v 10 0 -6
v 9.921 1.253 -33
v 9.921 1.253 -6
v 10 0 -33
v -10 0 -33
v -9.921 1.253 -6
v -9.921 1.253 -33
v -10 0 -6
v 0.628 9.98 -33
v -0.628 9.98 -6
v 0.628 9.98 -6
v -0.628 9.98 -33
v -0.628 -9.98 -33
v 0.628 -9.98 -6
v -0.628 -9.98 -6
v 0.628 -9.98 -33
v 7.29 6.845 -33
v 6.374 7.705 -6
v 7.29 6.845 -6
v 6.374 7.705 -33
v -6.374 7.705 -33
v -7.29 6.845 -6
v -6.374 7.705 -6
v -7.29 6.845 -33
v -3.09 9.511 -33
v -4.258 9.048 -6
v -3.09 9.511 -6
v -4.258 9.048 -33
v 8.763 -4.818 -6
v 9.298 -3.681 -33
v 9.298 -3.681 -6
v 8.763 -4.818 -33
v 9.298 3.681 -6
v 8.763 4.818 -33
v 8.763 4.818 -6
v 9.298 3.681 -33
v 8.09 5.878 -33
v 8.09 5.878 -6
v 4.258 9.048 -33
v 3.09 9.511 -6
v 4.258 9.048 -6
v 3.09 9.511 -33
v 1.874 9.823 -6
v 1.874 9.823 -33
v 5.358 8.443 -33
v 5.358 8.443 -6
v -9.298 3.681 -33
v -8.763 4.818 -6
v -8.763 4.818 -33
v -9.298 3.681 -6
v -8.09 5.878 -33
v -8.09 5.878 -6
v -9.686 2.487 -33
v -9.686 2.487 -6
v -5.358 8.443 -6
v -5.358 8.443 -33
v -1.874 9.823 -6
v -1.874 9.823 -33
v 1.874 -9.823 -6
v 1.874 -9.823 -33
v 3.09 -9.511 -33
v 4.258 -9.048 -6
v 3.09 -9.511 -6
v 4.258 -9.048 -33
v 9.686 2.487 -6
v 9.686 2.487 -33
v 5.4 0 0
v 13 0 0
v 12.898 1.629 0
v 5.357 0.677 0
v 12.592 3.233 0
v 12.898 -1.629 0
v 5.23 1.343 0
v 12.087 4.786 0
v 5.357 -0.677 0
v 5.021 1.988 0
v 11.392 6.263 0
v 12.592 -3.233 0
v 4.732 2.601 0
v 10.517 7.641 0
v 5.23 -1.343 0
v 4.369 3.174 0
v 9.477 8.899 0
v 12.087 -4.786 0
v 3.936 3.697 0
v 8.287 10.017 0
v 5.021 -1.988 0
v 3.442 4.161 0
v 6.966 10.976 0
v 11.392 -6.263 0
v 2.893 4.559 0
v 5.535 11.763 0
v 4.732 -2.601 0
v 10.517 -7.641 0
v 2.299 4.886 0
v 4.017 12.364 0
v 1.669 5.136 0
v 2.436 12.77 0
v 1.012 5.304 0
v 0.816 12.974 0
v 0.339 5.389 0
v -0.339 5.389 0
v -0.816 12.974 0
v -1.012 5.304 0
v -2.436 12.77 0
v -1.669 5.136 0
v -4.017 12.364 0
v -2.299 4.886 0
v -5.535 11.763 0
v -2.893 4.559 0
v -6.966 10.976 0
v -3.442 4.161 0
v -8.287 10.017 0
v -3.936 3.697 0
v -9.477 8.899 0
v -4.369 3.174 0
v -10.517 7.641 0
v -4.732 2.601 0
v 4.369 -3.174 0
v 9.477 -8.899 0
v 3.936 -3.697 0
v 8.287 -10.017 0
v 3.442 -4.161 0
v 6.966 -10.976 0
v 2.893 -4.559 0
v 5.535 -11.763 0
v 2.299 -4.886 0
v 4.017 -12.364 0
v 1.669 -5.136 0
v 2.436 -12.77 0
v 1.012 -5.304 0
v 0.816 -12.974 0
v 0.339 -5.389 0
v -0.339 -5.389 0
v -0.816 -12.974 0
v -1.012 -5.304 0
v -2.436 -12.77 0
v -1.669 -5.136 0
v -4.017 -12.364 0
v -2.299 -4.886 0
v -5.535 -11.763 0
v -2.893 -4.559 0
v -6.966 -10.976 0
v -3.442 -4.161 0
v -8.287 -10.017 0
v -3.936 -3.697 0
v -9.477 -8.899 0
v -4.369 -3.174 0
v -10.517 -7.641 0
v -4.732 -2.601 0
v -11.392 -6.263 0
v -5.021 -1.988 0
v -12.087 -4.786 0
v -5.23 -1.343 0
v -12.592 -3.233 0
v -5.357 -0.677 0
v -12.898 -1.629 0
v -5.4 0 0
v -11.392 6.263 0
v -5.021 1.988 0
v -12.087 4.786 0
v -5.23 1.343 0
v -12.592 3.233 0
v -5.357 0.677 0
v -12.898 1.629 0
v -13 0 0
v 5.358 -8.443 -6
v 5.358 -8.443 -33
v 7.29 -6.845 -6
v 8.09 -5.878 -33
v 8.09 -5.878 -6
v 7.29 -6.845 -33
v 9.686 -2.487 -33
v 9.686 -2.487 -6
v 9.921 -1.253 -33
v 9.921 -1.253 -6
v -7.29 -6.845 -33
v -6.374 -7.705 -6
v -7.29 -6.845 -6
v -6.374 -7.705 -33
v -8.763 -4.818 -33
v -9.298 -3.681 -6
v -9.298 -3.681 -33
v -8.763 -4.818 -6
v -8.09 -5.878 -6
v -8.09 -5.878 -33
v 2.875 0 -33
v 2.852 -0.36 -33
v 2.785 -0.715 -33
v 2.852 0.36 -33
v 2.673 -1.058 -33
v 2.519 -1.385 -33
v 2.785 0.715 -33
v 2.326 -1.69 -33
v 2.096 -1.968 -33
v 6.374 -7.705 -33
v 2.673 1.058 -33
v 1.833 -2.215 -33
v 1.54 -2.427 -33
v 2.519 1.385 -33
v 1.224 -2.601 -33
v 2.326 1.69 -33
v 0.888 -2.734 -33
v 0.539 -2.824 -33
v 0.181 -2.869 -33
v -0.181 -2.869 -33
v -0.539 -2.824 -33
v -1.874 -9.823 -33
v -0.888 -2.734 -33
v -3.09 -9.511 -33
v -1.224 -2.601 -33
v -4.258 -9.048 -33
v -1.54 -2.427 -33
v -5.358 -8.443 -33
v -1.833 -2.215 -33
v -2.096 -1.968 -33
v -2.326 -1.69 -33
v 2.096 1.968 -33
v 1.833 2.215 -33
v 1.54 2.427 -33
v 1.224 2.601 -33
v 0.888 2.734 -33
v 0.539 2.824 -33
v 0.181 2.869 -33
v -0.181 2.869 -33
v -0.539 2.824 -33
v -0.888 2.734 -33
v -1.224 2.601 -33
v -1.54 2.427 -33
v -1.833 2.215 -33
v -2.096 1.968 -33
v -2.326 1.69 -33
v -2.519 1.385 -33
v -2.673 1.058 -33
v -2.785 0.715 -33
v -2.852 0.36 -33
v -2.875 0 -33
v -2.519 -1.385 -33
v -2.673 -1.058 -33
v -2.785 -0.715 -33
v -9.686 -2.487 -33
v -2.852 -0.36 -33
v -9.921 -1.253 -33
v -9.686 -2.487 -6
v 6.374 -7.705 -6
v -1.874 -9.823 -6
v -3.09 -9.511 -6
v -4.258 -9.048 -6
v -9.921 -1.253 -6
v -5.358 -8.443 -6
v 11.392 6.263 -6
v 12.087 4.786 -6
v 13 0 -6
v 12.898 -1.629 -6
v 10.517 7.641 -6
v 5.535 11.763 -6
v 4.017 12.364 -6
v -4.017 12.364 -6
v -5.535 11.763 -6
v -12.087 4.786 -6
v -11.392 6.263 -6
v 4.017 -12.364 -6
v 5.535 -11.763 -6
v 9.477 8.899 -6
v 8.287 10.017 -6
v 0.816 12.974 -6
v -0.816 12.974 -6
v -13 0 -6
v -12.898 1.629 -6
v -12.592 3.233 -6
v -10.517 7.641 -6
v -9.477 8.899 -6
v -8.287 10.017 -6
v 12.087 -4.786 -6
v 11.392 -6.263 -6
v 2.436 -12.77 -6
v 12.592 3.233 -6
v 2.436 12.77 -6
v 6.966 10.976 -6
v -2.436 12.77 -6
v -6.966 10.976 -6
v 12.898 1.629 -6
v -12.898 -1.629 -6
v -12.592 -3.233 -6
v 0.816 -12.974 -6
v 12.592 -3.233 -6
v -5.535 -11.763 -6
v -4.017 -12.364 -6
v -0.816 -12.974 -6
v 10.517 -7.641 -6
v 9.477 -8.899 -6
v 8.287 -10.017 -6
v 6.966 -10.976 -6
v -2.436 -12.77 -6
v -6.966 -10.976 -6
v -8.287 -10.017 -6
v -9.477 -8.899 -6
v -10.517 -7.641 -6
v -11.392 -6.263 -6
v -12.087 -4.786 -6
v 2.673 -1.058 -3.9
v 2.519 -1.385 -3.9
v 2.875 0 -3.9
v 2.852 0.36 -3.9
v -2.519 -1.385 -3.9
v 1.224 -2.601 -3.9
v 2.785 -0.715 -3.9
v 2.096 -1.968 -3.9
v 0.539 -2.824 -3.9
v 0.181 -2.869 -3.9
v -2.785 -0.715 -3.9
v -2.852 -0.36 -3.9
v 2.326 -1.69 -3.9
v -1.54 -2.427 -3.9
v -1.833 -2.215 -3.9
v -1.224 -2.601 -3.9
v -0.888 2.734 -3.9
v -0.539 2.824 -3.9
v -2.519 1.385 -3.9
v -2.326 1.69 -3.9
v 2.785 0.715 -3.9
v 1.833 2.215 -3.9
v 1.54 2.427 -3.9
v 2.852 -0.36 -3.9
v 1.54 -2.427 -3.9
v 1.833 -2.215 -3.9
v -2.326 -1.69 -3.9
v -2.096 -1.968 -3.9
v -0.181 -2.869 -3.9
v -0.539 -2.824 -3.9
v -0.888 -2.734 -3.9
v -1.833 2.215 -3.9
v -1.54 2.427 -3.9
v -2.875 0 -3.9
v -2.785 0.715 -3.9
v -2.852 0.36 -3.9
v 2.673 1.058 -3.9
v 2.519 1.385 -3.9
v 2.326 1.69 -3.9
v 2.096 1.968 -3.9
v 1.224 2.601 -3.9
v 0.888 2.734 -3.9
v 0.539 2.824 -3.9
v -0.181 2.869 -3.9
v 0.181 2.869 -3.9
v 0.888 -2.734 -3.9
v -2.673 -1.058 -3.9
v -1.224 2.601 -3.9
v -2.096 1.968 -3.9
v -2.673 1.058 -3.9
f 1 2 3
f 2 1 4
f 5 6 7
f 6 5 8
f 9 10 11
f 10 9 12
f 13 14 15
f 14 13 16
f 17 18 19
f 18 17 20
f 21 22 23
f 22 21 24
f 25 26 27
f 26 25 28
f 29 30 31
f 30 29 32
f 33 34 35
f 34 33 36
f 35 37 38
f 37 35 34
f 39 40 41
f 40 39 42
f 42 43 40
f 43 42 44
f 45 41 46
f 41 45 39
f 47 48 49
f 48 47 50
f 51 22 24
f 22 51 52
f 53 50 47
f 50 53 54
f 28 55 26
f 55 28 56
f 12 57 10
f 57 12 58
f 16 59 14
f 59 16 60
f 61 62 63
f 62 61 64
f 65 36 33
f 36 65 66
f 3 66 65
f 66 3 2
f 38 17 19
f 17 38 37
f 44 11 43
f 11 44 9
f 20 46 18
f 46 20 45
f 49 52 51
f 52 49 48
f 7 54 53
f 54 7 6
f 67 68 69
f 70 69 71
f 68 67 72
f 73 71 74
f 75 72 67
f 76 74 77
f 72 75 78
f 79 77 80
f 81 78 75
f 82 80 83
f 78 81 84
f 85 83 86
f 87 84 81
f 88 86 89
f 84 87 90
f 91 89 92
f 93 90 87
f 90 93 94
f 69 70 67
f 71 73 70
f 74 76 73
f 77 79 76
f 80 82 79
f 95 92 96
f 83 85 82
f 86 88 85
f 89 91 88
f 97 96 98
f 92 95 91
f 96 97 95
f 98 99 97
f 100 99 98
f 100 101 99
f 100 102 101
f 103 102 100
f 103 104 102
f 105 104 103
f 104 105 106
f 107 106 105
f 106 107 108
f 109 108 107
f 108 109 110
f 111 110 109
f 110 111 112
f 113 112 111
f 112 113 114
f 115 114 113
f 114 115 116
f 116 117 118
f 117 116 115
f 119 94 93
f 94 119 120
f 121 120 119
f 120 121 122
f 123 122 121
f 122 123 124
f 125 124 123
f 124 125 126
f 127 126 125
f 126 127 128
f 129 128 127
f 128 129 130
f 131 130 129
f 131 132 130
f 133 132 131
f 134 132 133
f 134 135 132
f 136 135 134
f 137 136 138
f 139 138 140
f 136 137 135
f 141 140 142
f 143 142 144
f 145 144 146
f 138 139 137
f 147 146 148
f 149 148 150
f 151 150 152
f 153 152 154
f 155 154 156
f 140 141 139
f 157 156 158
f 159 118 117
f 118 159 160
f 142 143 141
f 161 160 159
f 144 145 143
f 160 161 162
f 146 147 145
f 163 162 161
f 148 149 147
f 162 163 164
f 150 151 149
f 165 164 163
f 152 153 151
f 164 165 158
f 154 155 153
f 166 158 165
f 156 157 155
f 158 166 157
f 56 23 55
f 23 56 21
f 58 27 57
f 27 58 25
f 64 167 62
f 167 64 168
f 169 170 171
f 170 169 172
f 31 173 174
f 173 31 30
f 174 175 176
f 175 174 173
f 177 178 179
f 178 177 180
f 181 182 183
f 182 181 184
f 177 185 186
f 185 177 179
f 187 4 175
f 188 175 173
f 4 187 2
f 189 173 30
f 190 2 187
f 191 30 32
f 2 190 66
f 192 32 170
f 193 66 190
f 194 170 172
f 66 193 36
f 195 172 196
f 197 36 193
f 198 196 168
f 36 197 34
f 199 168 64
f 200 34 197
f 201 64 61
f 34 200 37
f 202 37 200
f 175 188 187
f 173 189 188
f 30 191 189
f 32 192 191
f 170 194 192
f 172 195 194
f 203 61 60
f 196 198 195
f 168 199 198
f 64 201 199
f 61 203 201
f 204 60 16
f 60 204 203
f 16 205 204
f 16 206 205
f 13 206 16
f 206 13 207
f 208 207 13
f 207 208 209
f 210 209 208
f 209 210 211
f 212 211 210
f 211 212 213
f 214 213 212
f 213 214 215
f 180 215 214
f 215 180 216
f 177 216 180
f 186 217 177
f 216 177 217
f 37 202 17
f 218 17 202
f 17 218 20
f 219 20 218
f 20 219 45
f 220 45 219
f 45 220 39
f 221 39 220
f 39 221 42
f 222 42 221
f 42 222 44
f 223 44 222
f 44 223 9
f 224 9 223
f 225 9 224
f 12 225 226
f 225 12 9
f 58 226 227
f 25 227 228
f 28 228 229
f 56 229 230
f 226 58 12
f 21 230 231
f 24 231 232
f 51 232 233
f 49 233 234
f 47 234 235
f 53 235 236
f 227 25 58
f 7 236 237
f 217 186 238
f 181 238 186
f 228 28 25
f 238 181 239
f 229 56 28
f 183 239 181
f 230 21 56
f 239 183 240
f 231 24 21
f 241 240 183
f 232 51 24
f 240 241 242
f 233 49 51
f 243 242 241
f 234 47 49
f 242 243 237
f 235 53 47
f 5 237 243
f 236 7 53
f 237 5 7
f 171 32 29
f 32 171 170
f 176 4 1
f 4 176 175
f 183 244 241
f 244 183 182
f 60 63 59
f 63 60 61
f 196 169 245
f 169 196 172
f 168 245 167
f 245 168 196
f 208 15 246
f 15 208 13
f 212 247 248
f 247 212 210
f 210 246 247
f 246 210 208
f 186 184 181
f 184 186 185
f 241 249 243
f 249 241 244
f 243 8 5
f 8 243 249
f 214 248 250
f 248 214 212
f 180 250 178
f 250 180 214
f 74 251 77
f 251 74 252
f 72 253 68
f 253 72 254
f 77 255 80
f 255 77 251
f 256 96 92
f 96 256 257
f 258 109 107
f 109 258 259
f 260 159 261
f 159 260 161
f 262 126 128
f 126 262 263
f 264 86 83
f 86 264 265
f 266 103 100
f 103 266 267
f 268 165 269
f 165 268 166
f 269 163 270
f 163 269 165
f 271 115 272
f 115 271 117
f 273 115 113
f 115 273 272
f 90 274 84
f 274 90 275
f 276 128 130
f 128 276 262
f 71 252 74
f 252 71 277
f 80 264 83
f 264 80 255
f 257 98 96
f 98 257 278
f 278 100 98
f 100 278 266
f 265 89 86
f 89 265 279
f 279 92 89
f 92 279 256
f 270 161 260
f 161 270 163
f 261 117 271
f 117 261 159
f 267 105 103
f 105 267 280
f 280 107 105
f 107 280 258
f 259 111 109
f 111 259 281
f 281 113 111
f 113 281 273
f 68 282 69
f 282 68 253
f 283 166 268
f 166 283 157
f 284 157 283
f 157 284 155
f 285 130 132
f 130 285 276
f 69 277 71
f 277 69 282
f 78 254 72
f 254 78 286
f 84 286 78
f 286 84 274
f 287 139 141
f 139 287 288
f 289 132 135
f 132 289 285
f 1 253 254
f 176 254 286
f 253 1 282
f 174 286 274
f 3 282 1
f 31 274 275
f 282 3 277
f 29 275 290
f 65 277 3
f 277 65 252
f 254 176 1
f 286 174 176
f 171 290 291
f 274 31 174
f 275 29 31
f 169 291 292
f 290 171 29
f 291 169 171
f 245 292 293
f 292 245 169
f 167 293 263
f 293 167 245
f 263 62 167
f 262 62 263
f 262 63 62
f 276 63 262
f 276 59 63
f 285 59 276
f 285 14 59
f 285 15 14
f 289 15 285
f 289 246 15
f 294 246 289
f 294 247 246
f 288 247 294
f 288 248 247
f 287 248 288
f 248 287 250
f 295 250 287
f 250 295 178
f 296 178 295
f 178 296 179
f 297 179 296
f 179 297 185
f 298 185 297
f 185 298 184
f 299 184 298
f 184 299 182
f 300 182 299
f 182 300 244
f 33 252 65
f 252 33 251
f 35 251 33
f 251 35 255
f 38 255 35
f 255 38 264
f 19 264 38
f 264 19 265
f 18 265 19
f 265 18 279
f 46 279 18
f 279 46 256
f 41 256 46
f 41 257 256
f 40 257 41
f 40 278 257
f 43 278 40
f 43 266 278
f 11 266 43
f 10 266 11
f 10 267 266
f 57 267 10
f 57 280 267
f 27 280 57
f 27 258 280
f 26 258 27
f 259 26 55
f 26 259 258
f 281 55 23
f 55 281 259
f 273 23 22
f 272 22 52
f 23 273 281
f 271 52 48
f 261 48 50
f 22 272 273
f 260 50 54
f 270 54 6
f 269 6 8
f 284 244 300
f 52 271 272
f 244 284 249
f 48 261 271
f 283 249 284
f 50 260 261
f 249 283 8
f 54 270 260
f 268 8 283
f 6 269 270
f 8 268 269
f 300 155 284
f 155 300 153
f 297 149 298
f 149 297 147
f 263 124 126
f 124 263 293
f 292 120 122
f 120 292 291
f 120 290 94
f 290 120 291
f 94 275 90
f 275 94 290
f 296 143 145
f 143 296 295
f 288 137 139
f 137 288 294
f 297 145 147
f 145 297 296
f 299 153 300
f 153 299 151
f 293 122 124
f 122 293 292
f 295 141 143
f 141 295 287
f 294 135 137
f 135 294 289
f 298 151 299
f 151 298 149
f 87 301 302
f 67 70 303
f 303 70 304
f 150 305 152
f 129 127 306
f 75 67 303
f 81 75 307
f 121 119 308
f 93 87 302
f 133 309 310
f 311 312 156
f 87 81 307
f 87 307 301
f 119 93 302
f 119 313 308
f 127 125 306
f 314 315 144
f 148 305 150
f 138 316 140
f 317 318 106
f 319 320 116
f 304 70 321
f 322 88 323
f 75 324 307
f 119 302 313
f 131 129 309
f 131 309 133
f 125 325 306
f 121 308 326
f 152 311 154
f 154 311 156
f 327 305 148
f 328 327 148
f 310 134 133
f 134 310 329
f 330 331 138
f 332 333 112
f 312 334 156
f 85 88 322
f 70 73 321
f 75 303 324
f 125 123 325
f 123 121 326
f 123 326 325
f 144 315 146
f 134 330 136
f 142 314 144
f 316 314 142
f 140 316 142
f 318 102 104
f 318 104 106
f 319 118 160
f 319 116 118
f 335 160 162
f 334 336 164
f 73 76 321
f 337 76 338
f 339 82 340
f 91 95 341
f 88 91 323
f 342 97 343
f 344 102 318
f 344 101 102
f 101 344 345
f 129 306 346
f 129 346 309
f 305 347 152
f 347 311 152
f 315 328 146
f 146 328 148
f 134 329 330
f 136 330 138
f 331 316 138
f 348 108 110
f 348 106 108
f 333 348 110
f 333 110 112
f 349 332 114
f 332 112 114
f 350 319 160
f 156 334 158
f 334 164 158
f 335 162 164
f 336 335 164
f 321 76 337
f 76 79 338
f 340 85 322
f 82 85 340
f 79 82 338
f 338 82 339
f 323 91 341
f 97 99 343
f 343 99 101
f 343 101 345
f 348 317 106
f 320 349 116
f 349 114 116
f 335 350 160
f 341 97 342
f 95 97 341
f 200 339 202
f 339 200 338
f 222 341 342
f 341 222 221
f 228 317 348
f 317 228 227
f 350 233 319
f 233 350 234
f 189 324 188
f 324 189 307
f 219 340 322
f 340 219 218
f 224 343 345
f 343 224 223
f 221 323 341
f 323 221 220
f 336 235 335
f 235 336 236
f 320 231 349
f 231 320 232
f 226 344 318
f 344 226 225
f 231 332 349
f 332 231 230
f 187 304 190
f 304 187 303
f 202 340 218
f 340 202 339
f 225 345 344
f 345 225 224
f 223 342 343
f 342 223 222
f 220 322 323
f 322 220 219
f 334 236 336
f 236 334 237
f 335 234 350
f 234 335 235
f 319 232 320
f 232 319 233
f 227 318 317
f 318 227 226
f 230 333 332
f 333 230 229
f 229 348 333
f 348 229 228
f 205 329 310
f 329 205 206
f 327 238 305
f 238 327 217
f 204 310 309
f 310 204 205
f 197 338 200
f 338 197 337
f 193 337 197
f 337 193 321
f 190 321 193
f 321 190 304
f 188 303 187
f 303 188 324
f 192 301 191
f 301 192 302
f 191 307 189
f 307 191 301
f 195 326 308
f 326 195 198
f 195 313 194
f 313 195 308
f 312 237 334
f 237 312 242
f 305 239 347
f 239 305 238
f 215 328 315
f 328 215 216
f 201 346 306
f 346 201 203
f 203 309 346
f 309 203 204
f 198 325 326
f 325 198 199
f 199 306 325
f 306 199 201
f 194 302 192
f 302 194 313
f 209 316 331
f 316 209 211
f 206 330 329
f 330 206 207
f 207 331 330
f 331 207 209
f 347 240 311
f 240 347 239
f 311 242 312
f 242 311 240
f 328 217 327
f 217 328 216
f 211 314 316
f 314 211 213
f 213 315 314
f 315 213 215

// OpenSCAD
$fn = 50;


difference() {
	union() {
		translate(v = [0, 0, -33.0000000000]) {
			cylinder(h = 33, r = 10.0000000000);
		}
		translate(v = [0, 0, -6.0000000000]) {
			cylinder(h = 6, r = 13.0000000000);
		}
	}
	union() {
		translate(v = [0, 0, 0]) {
			rotate(a = [0, 0, 0]) {
				difference() {
					union() {
						#translate(v = [0, 0, -33.0000000000]) {
							cylinder(h = 33, r = 2.6000000000);
						}
						#translate(v = [0, 0, -3.9000000000]) {
							cylinder(h = 3.9000000000, r = 10.0000000000, r1 = 2.8750000000, r2 = 5.4000000000);
						}
						#translate(v = [0, 0, -33.0000000000]) {
							cylinder(h = 33, r = 2.8750000000);
						}
						#translate(v = [0, 0, -33.0000000000]) {
							cylinder(h = 33, r = 2.6000000000);
						}
					}
					union();
				}
			}
		}
	}
}
